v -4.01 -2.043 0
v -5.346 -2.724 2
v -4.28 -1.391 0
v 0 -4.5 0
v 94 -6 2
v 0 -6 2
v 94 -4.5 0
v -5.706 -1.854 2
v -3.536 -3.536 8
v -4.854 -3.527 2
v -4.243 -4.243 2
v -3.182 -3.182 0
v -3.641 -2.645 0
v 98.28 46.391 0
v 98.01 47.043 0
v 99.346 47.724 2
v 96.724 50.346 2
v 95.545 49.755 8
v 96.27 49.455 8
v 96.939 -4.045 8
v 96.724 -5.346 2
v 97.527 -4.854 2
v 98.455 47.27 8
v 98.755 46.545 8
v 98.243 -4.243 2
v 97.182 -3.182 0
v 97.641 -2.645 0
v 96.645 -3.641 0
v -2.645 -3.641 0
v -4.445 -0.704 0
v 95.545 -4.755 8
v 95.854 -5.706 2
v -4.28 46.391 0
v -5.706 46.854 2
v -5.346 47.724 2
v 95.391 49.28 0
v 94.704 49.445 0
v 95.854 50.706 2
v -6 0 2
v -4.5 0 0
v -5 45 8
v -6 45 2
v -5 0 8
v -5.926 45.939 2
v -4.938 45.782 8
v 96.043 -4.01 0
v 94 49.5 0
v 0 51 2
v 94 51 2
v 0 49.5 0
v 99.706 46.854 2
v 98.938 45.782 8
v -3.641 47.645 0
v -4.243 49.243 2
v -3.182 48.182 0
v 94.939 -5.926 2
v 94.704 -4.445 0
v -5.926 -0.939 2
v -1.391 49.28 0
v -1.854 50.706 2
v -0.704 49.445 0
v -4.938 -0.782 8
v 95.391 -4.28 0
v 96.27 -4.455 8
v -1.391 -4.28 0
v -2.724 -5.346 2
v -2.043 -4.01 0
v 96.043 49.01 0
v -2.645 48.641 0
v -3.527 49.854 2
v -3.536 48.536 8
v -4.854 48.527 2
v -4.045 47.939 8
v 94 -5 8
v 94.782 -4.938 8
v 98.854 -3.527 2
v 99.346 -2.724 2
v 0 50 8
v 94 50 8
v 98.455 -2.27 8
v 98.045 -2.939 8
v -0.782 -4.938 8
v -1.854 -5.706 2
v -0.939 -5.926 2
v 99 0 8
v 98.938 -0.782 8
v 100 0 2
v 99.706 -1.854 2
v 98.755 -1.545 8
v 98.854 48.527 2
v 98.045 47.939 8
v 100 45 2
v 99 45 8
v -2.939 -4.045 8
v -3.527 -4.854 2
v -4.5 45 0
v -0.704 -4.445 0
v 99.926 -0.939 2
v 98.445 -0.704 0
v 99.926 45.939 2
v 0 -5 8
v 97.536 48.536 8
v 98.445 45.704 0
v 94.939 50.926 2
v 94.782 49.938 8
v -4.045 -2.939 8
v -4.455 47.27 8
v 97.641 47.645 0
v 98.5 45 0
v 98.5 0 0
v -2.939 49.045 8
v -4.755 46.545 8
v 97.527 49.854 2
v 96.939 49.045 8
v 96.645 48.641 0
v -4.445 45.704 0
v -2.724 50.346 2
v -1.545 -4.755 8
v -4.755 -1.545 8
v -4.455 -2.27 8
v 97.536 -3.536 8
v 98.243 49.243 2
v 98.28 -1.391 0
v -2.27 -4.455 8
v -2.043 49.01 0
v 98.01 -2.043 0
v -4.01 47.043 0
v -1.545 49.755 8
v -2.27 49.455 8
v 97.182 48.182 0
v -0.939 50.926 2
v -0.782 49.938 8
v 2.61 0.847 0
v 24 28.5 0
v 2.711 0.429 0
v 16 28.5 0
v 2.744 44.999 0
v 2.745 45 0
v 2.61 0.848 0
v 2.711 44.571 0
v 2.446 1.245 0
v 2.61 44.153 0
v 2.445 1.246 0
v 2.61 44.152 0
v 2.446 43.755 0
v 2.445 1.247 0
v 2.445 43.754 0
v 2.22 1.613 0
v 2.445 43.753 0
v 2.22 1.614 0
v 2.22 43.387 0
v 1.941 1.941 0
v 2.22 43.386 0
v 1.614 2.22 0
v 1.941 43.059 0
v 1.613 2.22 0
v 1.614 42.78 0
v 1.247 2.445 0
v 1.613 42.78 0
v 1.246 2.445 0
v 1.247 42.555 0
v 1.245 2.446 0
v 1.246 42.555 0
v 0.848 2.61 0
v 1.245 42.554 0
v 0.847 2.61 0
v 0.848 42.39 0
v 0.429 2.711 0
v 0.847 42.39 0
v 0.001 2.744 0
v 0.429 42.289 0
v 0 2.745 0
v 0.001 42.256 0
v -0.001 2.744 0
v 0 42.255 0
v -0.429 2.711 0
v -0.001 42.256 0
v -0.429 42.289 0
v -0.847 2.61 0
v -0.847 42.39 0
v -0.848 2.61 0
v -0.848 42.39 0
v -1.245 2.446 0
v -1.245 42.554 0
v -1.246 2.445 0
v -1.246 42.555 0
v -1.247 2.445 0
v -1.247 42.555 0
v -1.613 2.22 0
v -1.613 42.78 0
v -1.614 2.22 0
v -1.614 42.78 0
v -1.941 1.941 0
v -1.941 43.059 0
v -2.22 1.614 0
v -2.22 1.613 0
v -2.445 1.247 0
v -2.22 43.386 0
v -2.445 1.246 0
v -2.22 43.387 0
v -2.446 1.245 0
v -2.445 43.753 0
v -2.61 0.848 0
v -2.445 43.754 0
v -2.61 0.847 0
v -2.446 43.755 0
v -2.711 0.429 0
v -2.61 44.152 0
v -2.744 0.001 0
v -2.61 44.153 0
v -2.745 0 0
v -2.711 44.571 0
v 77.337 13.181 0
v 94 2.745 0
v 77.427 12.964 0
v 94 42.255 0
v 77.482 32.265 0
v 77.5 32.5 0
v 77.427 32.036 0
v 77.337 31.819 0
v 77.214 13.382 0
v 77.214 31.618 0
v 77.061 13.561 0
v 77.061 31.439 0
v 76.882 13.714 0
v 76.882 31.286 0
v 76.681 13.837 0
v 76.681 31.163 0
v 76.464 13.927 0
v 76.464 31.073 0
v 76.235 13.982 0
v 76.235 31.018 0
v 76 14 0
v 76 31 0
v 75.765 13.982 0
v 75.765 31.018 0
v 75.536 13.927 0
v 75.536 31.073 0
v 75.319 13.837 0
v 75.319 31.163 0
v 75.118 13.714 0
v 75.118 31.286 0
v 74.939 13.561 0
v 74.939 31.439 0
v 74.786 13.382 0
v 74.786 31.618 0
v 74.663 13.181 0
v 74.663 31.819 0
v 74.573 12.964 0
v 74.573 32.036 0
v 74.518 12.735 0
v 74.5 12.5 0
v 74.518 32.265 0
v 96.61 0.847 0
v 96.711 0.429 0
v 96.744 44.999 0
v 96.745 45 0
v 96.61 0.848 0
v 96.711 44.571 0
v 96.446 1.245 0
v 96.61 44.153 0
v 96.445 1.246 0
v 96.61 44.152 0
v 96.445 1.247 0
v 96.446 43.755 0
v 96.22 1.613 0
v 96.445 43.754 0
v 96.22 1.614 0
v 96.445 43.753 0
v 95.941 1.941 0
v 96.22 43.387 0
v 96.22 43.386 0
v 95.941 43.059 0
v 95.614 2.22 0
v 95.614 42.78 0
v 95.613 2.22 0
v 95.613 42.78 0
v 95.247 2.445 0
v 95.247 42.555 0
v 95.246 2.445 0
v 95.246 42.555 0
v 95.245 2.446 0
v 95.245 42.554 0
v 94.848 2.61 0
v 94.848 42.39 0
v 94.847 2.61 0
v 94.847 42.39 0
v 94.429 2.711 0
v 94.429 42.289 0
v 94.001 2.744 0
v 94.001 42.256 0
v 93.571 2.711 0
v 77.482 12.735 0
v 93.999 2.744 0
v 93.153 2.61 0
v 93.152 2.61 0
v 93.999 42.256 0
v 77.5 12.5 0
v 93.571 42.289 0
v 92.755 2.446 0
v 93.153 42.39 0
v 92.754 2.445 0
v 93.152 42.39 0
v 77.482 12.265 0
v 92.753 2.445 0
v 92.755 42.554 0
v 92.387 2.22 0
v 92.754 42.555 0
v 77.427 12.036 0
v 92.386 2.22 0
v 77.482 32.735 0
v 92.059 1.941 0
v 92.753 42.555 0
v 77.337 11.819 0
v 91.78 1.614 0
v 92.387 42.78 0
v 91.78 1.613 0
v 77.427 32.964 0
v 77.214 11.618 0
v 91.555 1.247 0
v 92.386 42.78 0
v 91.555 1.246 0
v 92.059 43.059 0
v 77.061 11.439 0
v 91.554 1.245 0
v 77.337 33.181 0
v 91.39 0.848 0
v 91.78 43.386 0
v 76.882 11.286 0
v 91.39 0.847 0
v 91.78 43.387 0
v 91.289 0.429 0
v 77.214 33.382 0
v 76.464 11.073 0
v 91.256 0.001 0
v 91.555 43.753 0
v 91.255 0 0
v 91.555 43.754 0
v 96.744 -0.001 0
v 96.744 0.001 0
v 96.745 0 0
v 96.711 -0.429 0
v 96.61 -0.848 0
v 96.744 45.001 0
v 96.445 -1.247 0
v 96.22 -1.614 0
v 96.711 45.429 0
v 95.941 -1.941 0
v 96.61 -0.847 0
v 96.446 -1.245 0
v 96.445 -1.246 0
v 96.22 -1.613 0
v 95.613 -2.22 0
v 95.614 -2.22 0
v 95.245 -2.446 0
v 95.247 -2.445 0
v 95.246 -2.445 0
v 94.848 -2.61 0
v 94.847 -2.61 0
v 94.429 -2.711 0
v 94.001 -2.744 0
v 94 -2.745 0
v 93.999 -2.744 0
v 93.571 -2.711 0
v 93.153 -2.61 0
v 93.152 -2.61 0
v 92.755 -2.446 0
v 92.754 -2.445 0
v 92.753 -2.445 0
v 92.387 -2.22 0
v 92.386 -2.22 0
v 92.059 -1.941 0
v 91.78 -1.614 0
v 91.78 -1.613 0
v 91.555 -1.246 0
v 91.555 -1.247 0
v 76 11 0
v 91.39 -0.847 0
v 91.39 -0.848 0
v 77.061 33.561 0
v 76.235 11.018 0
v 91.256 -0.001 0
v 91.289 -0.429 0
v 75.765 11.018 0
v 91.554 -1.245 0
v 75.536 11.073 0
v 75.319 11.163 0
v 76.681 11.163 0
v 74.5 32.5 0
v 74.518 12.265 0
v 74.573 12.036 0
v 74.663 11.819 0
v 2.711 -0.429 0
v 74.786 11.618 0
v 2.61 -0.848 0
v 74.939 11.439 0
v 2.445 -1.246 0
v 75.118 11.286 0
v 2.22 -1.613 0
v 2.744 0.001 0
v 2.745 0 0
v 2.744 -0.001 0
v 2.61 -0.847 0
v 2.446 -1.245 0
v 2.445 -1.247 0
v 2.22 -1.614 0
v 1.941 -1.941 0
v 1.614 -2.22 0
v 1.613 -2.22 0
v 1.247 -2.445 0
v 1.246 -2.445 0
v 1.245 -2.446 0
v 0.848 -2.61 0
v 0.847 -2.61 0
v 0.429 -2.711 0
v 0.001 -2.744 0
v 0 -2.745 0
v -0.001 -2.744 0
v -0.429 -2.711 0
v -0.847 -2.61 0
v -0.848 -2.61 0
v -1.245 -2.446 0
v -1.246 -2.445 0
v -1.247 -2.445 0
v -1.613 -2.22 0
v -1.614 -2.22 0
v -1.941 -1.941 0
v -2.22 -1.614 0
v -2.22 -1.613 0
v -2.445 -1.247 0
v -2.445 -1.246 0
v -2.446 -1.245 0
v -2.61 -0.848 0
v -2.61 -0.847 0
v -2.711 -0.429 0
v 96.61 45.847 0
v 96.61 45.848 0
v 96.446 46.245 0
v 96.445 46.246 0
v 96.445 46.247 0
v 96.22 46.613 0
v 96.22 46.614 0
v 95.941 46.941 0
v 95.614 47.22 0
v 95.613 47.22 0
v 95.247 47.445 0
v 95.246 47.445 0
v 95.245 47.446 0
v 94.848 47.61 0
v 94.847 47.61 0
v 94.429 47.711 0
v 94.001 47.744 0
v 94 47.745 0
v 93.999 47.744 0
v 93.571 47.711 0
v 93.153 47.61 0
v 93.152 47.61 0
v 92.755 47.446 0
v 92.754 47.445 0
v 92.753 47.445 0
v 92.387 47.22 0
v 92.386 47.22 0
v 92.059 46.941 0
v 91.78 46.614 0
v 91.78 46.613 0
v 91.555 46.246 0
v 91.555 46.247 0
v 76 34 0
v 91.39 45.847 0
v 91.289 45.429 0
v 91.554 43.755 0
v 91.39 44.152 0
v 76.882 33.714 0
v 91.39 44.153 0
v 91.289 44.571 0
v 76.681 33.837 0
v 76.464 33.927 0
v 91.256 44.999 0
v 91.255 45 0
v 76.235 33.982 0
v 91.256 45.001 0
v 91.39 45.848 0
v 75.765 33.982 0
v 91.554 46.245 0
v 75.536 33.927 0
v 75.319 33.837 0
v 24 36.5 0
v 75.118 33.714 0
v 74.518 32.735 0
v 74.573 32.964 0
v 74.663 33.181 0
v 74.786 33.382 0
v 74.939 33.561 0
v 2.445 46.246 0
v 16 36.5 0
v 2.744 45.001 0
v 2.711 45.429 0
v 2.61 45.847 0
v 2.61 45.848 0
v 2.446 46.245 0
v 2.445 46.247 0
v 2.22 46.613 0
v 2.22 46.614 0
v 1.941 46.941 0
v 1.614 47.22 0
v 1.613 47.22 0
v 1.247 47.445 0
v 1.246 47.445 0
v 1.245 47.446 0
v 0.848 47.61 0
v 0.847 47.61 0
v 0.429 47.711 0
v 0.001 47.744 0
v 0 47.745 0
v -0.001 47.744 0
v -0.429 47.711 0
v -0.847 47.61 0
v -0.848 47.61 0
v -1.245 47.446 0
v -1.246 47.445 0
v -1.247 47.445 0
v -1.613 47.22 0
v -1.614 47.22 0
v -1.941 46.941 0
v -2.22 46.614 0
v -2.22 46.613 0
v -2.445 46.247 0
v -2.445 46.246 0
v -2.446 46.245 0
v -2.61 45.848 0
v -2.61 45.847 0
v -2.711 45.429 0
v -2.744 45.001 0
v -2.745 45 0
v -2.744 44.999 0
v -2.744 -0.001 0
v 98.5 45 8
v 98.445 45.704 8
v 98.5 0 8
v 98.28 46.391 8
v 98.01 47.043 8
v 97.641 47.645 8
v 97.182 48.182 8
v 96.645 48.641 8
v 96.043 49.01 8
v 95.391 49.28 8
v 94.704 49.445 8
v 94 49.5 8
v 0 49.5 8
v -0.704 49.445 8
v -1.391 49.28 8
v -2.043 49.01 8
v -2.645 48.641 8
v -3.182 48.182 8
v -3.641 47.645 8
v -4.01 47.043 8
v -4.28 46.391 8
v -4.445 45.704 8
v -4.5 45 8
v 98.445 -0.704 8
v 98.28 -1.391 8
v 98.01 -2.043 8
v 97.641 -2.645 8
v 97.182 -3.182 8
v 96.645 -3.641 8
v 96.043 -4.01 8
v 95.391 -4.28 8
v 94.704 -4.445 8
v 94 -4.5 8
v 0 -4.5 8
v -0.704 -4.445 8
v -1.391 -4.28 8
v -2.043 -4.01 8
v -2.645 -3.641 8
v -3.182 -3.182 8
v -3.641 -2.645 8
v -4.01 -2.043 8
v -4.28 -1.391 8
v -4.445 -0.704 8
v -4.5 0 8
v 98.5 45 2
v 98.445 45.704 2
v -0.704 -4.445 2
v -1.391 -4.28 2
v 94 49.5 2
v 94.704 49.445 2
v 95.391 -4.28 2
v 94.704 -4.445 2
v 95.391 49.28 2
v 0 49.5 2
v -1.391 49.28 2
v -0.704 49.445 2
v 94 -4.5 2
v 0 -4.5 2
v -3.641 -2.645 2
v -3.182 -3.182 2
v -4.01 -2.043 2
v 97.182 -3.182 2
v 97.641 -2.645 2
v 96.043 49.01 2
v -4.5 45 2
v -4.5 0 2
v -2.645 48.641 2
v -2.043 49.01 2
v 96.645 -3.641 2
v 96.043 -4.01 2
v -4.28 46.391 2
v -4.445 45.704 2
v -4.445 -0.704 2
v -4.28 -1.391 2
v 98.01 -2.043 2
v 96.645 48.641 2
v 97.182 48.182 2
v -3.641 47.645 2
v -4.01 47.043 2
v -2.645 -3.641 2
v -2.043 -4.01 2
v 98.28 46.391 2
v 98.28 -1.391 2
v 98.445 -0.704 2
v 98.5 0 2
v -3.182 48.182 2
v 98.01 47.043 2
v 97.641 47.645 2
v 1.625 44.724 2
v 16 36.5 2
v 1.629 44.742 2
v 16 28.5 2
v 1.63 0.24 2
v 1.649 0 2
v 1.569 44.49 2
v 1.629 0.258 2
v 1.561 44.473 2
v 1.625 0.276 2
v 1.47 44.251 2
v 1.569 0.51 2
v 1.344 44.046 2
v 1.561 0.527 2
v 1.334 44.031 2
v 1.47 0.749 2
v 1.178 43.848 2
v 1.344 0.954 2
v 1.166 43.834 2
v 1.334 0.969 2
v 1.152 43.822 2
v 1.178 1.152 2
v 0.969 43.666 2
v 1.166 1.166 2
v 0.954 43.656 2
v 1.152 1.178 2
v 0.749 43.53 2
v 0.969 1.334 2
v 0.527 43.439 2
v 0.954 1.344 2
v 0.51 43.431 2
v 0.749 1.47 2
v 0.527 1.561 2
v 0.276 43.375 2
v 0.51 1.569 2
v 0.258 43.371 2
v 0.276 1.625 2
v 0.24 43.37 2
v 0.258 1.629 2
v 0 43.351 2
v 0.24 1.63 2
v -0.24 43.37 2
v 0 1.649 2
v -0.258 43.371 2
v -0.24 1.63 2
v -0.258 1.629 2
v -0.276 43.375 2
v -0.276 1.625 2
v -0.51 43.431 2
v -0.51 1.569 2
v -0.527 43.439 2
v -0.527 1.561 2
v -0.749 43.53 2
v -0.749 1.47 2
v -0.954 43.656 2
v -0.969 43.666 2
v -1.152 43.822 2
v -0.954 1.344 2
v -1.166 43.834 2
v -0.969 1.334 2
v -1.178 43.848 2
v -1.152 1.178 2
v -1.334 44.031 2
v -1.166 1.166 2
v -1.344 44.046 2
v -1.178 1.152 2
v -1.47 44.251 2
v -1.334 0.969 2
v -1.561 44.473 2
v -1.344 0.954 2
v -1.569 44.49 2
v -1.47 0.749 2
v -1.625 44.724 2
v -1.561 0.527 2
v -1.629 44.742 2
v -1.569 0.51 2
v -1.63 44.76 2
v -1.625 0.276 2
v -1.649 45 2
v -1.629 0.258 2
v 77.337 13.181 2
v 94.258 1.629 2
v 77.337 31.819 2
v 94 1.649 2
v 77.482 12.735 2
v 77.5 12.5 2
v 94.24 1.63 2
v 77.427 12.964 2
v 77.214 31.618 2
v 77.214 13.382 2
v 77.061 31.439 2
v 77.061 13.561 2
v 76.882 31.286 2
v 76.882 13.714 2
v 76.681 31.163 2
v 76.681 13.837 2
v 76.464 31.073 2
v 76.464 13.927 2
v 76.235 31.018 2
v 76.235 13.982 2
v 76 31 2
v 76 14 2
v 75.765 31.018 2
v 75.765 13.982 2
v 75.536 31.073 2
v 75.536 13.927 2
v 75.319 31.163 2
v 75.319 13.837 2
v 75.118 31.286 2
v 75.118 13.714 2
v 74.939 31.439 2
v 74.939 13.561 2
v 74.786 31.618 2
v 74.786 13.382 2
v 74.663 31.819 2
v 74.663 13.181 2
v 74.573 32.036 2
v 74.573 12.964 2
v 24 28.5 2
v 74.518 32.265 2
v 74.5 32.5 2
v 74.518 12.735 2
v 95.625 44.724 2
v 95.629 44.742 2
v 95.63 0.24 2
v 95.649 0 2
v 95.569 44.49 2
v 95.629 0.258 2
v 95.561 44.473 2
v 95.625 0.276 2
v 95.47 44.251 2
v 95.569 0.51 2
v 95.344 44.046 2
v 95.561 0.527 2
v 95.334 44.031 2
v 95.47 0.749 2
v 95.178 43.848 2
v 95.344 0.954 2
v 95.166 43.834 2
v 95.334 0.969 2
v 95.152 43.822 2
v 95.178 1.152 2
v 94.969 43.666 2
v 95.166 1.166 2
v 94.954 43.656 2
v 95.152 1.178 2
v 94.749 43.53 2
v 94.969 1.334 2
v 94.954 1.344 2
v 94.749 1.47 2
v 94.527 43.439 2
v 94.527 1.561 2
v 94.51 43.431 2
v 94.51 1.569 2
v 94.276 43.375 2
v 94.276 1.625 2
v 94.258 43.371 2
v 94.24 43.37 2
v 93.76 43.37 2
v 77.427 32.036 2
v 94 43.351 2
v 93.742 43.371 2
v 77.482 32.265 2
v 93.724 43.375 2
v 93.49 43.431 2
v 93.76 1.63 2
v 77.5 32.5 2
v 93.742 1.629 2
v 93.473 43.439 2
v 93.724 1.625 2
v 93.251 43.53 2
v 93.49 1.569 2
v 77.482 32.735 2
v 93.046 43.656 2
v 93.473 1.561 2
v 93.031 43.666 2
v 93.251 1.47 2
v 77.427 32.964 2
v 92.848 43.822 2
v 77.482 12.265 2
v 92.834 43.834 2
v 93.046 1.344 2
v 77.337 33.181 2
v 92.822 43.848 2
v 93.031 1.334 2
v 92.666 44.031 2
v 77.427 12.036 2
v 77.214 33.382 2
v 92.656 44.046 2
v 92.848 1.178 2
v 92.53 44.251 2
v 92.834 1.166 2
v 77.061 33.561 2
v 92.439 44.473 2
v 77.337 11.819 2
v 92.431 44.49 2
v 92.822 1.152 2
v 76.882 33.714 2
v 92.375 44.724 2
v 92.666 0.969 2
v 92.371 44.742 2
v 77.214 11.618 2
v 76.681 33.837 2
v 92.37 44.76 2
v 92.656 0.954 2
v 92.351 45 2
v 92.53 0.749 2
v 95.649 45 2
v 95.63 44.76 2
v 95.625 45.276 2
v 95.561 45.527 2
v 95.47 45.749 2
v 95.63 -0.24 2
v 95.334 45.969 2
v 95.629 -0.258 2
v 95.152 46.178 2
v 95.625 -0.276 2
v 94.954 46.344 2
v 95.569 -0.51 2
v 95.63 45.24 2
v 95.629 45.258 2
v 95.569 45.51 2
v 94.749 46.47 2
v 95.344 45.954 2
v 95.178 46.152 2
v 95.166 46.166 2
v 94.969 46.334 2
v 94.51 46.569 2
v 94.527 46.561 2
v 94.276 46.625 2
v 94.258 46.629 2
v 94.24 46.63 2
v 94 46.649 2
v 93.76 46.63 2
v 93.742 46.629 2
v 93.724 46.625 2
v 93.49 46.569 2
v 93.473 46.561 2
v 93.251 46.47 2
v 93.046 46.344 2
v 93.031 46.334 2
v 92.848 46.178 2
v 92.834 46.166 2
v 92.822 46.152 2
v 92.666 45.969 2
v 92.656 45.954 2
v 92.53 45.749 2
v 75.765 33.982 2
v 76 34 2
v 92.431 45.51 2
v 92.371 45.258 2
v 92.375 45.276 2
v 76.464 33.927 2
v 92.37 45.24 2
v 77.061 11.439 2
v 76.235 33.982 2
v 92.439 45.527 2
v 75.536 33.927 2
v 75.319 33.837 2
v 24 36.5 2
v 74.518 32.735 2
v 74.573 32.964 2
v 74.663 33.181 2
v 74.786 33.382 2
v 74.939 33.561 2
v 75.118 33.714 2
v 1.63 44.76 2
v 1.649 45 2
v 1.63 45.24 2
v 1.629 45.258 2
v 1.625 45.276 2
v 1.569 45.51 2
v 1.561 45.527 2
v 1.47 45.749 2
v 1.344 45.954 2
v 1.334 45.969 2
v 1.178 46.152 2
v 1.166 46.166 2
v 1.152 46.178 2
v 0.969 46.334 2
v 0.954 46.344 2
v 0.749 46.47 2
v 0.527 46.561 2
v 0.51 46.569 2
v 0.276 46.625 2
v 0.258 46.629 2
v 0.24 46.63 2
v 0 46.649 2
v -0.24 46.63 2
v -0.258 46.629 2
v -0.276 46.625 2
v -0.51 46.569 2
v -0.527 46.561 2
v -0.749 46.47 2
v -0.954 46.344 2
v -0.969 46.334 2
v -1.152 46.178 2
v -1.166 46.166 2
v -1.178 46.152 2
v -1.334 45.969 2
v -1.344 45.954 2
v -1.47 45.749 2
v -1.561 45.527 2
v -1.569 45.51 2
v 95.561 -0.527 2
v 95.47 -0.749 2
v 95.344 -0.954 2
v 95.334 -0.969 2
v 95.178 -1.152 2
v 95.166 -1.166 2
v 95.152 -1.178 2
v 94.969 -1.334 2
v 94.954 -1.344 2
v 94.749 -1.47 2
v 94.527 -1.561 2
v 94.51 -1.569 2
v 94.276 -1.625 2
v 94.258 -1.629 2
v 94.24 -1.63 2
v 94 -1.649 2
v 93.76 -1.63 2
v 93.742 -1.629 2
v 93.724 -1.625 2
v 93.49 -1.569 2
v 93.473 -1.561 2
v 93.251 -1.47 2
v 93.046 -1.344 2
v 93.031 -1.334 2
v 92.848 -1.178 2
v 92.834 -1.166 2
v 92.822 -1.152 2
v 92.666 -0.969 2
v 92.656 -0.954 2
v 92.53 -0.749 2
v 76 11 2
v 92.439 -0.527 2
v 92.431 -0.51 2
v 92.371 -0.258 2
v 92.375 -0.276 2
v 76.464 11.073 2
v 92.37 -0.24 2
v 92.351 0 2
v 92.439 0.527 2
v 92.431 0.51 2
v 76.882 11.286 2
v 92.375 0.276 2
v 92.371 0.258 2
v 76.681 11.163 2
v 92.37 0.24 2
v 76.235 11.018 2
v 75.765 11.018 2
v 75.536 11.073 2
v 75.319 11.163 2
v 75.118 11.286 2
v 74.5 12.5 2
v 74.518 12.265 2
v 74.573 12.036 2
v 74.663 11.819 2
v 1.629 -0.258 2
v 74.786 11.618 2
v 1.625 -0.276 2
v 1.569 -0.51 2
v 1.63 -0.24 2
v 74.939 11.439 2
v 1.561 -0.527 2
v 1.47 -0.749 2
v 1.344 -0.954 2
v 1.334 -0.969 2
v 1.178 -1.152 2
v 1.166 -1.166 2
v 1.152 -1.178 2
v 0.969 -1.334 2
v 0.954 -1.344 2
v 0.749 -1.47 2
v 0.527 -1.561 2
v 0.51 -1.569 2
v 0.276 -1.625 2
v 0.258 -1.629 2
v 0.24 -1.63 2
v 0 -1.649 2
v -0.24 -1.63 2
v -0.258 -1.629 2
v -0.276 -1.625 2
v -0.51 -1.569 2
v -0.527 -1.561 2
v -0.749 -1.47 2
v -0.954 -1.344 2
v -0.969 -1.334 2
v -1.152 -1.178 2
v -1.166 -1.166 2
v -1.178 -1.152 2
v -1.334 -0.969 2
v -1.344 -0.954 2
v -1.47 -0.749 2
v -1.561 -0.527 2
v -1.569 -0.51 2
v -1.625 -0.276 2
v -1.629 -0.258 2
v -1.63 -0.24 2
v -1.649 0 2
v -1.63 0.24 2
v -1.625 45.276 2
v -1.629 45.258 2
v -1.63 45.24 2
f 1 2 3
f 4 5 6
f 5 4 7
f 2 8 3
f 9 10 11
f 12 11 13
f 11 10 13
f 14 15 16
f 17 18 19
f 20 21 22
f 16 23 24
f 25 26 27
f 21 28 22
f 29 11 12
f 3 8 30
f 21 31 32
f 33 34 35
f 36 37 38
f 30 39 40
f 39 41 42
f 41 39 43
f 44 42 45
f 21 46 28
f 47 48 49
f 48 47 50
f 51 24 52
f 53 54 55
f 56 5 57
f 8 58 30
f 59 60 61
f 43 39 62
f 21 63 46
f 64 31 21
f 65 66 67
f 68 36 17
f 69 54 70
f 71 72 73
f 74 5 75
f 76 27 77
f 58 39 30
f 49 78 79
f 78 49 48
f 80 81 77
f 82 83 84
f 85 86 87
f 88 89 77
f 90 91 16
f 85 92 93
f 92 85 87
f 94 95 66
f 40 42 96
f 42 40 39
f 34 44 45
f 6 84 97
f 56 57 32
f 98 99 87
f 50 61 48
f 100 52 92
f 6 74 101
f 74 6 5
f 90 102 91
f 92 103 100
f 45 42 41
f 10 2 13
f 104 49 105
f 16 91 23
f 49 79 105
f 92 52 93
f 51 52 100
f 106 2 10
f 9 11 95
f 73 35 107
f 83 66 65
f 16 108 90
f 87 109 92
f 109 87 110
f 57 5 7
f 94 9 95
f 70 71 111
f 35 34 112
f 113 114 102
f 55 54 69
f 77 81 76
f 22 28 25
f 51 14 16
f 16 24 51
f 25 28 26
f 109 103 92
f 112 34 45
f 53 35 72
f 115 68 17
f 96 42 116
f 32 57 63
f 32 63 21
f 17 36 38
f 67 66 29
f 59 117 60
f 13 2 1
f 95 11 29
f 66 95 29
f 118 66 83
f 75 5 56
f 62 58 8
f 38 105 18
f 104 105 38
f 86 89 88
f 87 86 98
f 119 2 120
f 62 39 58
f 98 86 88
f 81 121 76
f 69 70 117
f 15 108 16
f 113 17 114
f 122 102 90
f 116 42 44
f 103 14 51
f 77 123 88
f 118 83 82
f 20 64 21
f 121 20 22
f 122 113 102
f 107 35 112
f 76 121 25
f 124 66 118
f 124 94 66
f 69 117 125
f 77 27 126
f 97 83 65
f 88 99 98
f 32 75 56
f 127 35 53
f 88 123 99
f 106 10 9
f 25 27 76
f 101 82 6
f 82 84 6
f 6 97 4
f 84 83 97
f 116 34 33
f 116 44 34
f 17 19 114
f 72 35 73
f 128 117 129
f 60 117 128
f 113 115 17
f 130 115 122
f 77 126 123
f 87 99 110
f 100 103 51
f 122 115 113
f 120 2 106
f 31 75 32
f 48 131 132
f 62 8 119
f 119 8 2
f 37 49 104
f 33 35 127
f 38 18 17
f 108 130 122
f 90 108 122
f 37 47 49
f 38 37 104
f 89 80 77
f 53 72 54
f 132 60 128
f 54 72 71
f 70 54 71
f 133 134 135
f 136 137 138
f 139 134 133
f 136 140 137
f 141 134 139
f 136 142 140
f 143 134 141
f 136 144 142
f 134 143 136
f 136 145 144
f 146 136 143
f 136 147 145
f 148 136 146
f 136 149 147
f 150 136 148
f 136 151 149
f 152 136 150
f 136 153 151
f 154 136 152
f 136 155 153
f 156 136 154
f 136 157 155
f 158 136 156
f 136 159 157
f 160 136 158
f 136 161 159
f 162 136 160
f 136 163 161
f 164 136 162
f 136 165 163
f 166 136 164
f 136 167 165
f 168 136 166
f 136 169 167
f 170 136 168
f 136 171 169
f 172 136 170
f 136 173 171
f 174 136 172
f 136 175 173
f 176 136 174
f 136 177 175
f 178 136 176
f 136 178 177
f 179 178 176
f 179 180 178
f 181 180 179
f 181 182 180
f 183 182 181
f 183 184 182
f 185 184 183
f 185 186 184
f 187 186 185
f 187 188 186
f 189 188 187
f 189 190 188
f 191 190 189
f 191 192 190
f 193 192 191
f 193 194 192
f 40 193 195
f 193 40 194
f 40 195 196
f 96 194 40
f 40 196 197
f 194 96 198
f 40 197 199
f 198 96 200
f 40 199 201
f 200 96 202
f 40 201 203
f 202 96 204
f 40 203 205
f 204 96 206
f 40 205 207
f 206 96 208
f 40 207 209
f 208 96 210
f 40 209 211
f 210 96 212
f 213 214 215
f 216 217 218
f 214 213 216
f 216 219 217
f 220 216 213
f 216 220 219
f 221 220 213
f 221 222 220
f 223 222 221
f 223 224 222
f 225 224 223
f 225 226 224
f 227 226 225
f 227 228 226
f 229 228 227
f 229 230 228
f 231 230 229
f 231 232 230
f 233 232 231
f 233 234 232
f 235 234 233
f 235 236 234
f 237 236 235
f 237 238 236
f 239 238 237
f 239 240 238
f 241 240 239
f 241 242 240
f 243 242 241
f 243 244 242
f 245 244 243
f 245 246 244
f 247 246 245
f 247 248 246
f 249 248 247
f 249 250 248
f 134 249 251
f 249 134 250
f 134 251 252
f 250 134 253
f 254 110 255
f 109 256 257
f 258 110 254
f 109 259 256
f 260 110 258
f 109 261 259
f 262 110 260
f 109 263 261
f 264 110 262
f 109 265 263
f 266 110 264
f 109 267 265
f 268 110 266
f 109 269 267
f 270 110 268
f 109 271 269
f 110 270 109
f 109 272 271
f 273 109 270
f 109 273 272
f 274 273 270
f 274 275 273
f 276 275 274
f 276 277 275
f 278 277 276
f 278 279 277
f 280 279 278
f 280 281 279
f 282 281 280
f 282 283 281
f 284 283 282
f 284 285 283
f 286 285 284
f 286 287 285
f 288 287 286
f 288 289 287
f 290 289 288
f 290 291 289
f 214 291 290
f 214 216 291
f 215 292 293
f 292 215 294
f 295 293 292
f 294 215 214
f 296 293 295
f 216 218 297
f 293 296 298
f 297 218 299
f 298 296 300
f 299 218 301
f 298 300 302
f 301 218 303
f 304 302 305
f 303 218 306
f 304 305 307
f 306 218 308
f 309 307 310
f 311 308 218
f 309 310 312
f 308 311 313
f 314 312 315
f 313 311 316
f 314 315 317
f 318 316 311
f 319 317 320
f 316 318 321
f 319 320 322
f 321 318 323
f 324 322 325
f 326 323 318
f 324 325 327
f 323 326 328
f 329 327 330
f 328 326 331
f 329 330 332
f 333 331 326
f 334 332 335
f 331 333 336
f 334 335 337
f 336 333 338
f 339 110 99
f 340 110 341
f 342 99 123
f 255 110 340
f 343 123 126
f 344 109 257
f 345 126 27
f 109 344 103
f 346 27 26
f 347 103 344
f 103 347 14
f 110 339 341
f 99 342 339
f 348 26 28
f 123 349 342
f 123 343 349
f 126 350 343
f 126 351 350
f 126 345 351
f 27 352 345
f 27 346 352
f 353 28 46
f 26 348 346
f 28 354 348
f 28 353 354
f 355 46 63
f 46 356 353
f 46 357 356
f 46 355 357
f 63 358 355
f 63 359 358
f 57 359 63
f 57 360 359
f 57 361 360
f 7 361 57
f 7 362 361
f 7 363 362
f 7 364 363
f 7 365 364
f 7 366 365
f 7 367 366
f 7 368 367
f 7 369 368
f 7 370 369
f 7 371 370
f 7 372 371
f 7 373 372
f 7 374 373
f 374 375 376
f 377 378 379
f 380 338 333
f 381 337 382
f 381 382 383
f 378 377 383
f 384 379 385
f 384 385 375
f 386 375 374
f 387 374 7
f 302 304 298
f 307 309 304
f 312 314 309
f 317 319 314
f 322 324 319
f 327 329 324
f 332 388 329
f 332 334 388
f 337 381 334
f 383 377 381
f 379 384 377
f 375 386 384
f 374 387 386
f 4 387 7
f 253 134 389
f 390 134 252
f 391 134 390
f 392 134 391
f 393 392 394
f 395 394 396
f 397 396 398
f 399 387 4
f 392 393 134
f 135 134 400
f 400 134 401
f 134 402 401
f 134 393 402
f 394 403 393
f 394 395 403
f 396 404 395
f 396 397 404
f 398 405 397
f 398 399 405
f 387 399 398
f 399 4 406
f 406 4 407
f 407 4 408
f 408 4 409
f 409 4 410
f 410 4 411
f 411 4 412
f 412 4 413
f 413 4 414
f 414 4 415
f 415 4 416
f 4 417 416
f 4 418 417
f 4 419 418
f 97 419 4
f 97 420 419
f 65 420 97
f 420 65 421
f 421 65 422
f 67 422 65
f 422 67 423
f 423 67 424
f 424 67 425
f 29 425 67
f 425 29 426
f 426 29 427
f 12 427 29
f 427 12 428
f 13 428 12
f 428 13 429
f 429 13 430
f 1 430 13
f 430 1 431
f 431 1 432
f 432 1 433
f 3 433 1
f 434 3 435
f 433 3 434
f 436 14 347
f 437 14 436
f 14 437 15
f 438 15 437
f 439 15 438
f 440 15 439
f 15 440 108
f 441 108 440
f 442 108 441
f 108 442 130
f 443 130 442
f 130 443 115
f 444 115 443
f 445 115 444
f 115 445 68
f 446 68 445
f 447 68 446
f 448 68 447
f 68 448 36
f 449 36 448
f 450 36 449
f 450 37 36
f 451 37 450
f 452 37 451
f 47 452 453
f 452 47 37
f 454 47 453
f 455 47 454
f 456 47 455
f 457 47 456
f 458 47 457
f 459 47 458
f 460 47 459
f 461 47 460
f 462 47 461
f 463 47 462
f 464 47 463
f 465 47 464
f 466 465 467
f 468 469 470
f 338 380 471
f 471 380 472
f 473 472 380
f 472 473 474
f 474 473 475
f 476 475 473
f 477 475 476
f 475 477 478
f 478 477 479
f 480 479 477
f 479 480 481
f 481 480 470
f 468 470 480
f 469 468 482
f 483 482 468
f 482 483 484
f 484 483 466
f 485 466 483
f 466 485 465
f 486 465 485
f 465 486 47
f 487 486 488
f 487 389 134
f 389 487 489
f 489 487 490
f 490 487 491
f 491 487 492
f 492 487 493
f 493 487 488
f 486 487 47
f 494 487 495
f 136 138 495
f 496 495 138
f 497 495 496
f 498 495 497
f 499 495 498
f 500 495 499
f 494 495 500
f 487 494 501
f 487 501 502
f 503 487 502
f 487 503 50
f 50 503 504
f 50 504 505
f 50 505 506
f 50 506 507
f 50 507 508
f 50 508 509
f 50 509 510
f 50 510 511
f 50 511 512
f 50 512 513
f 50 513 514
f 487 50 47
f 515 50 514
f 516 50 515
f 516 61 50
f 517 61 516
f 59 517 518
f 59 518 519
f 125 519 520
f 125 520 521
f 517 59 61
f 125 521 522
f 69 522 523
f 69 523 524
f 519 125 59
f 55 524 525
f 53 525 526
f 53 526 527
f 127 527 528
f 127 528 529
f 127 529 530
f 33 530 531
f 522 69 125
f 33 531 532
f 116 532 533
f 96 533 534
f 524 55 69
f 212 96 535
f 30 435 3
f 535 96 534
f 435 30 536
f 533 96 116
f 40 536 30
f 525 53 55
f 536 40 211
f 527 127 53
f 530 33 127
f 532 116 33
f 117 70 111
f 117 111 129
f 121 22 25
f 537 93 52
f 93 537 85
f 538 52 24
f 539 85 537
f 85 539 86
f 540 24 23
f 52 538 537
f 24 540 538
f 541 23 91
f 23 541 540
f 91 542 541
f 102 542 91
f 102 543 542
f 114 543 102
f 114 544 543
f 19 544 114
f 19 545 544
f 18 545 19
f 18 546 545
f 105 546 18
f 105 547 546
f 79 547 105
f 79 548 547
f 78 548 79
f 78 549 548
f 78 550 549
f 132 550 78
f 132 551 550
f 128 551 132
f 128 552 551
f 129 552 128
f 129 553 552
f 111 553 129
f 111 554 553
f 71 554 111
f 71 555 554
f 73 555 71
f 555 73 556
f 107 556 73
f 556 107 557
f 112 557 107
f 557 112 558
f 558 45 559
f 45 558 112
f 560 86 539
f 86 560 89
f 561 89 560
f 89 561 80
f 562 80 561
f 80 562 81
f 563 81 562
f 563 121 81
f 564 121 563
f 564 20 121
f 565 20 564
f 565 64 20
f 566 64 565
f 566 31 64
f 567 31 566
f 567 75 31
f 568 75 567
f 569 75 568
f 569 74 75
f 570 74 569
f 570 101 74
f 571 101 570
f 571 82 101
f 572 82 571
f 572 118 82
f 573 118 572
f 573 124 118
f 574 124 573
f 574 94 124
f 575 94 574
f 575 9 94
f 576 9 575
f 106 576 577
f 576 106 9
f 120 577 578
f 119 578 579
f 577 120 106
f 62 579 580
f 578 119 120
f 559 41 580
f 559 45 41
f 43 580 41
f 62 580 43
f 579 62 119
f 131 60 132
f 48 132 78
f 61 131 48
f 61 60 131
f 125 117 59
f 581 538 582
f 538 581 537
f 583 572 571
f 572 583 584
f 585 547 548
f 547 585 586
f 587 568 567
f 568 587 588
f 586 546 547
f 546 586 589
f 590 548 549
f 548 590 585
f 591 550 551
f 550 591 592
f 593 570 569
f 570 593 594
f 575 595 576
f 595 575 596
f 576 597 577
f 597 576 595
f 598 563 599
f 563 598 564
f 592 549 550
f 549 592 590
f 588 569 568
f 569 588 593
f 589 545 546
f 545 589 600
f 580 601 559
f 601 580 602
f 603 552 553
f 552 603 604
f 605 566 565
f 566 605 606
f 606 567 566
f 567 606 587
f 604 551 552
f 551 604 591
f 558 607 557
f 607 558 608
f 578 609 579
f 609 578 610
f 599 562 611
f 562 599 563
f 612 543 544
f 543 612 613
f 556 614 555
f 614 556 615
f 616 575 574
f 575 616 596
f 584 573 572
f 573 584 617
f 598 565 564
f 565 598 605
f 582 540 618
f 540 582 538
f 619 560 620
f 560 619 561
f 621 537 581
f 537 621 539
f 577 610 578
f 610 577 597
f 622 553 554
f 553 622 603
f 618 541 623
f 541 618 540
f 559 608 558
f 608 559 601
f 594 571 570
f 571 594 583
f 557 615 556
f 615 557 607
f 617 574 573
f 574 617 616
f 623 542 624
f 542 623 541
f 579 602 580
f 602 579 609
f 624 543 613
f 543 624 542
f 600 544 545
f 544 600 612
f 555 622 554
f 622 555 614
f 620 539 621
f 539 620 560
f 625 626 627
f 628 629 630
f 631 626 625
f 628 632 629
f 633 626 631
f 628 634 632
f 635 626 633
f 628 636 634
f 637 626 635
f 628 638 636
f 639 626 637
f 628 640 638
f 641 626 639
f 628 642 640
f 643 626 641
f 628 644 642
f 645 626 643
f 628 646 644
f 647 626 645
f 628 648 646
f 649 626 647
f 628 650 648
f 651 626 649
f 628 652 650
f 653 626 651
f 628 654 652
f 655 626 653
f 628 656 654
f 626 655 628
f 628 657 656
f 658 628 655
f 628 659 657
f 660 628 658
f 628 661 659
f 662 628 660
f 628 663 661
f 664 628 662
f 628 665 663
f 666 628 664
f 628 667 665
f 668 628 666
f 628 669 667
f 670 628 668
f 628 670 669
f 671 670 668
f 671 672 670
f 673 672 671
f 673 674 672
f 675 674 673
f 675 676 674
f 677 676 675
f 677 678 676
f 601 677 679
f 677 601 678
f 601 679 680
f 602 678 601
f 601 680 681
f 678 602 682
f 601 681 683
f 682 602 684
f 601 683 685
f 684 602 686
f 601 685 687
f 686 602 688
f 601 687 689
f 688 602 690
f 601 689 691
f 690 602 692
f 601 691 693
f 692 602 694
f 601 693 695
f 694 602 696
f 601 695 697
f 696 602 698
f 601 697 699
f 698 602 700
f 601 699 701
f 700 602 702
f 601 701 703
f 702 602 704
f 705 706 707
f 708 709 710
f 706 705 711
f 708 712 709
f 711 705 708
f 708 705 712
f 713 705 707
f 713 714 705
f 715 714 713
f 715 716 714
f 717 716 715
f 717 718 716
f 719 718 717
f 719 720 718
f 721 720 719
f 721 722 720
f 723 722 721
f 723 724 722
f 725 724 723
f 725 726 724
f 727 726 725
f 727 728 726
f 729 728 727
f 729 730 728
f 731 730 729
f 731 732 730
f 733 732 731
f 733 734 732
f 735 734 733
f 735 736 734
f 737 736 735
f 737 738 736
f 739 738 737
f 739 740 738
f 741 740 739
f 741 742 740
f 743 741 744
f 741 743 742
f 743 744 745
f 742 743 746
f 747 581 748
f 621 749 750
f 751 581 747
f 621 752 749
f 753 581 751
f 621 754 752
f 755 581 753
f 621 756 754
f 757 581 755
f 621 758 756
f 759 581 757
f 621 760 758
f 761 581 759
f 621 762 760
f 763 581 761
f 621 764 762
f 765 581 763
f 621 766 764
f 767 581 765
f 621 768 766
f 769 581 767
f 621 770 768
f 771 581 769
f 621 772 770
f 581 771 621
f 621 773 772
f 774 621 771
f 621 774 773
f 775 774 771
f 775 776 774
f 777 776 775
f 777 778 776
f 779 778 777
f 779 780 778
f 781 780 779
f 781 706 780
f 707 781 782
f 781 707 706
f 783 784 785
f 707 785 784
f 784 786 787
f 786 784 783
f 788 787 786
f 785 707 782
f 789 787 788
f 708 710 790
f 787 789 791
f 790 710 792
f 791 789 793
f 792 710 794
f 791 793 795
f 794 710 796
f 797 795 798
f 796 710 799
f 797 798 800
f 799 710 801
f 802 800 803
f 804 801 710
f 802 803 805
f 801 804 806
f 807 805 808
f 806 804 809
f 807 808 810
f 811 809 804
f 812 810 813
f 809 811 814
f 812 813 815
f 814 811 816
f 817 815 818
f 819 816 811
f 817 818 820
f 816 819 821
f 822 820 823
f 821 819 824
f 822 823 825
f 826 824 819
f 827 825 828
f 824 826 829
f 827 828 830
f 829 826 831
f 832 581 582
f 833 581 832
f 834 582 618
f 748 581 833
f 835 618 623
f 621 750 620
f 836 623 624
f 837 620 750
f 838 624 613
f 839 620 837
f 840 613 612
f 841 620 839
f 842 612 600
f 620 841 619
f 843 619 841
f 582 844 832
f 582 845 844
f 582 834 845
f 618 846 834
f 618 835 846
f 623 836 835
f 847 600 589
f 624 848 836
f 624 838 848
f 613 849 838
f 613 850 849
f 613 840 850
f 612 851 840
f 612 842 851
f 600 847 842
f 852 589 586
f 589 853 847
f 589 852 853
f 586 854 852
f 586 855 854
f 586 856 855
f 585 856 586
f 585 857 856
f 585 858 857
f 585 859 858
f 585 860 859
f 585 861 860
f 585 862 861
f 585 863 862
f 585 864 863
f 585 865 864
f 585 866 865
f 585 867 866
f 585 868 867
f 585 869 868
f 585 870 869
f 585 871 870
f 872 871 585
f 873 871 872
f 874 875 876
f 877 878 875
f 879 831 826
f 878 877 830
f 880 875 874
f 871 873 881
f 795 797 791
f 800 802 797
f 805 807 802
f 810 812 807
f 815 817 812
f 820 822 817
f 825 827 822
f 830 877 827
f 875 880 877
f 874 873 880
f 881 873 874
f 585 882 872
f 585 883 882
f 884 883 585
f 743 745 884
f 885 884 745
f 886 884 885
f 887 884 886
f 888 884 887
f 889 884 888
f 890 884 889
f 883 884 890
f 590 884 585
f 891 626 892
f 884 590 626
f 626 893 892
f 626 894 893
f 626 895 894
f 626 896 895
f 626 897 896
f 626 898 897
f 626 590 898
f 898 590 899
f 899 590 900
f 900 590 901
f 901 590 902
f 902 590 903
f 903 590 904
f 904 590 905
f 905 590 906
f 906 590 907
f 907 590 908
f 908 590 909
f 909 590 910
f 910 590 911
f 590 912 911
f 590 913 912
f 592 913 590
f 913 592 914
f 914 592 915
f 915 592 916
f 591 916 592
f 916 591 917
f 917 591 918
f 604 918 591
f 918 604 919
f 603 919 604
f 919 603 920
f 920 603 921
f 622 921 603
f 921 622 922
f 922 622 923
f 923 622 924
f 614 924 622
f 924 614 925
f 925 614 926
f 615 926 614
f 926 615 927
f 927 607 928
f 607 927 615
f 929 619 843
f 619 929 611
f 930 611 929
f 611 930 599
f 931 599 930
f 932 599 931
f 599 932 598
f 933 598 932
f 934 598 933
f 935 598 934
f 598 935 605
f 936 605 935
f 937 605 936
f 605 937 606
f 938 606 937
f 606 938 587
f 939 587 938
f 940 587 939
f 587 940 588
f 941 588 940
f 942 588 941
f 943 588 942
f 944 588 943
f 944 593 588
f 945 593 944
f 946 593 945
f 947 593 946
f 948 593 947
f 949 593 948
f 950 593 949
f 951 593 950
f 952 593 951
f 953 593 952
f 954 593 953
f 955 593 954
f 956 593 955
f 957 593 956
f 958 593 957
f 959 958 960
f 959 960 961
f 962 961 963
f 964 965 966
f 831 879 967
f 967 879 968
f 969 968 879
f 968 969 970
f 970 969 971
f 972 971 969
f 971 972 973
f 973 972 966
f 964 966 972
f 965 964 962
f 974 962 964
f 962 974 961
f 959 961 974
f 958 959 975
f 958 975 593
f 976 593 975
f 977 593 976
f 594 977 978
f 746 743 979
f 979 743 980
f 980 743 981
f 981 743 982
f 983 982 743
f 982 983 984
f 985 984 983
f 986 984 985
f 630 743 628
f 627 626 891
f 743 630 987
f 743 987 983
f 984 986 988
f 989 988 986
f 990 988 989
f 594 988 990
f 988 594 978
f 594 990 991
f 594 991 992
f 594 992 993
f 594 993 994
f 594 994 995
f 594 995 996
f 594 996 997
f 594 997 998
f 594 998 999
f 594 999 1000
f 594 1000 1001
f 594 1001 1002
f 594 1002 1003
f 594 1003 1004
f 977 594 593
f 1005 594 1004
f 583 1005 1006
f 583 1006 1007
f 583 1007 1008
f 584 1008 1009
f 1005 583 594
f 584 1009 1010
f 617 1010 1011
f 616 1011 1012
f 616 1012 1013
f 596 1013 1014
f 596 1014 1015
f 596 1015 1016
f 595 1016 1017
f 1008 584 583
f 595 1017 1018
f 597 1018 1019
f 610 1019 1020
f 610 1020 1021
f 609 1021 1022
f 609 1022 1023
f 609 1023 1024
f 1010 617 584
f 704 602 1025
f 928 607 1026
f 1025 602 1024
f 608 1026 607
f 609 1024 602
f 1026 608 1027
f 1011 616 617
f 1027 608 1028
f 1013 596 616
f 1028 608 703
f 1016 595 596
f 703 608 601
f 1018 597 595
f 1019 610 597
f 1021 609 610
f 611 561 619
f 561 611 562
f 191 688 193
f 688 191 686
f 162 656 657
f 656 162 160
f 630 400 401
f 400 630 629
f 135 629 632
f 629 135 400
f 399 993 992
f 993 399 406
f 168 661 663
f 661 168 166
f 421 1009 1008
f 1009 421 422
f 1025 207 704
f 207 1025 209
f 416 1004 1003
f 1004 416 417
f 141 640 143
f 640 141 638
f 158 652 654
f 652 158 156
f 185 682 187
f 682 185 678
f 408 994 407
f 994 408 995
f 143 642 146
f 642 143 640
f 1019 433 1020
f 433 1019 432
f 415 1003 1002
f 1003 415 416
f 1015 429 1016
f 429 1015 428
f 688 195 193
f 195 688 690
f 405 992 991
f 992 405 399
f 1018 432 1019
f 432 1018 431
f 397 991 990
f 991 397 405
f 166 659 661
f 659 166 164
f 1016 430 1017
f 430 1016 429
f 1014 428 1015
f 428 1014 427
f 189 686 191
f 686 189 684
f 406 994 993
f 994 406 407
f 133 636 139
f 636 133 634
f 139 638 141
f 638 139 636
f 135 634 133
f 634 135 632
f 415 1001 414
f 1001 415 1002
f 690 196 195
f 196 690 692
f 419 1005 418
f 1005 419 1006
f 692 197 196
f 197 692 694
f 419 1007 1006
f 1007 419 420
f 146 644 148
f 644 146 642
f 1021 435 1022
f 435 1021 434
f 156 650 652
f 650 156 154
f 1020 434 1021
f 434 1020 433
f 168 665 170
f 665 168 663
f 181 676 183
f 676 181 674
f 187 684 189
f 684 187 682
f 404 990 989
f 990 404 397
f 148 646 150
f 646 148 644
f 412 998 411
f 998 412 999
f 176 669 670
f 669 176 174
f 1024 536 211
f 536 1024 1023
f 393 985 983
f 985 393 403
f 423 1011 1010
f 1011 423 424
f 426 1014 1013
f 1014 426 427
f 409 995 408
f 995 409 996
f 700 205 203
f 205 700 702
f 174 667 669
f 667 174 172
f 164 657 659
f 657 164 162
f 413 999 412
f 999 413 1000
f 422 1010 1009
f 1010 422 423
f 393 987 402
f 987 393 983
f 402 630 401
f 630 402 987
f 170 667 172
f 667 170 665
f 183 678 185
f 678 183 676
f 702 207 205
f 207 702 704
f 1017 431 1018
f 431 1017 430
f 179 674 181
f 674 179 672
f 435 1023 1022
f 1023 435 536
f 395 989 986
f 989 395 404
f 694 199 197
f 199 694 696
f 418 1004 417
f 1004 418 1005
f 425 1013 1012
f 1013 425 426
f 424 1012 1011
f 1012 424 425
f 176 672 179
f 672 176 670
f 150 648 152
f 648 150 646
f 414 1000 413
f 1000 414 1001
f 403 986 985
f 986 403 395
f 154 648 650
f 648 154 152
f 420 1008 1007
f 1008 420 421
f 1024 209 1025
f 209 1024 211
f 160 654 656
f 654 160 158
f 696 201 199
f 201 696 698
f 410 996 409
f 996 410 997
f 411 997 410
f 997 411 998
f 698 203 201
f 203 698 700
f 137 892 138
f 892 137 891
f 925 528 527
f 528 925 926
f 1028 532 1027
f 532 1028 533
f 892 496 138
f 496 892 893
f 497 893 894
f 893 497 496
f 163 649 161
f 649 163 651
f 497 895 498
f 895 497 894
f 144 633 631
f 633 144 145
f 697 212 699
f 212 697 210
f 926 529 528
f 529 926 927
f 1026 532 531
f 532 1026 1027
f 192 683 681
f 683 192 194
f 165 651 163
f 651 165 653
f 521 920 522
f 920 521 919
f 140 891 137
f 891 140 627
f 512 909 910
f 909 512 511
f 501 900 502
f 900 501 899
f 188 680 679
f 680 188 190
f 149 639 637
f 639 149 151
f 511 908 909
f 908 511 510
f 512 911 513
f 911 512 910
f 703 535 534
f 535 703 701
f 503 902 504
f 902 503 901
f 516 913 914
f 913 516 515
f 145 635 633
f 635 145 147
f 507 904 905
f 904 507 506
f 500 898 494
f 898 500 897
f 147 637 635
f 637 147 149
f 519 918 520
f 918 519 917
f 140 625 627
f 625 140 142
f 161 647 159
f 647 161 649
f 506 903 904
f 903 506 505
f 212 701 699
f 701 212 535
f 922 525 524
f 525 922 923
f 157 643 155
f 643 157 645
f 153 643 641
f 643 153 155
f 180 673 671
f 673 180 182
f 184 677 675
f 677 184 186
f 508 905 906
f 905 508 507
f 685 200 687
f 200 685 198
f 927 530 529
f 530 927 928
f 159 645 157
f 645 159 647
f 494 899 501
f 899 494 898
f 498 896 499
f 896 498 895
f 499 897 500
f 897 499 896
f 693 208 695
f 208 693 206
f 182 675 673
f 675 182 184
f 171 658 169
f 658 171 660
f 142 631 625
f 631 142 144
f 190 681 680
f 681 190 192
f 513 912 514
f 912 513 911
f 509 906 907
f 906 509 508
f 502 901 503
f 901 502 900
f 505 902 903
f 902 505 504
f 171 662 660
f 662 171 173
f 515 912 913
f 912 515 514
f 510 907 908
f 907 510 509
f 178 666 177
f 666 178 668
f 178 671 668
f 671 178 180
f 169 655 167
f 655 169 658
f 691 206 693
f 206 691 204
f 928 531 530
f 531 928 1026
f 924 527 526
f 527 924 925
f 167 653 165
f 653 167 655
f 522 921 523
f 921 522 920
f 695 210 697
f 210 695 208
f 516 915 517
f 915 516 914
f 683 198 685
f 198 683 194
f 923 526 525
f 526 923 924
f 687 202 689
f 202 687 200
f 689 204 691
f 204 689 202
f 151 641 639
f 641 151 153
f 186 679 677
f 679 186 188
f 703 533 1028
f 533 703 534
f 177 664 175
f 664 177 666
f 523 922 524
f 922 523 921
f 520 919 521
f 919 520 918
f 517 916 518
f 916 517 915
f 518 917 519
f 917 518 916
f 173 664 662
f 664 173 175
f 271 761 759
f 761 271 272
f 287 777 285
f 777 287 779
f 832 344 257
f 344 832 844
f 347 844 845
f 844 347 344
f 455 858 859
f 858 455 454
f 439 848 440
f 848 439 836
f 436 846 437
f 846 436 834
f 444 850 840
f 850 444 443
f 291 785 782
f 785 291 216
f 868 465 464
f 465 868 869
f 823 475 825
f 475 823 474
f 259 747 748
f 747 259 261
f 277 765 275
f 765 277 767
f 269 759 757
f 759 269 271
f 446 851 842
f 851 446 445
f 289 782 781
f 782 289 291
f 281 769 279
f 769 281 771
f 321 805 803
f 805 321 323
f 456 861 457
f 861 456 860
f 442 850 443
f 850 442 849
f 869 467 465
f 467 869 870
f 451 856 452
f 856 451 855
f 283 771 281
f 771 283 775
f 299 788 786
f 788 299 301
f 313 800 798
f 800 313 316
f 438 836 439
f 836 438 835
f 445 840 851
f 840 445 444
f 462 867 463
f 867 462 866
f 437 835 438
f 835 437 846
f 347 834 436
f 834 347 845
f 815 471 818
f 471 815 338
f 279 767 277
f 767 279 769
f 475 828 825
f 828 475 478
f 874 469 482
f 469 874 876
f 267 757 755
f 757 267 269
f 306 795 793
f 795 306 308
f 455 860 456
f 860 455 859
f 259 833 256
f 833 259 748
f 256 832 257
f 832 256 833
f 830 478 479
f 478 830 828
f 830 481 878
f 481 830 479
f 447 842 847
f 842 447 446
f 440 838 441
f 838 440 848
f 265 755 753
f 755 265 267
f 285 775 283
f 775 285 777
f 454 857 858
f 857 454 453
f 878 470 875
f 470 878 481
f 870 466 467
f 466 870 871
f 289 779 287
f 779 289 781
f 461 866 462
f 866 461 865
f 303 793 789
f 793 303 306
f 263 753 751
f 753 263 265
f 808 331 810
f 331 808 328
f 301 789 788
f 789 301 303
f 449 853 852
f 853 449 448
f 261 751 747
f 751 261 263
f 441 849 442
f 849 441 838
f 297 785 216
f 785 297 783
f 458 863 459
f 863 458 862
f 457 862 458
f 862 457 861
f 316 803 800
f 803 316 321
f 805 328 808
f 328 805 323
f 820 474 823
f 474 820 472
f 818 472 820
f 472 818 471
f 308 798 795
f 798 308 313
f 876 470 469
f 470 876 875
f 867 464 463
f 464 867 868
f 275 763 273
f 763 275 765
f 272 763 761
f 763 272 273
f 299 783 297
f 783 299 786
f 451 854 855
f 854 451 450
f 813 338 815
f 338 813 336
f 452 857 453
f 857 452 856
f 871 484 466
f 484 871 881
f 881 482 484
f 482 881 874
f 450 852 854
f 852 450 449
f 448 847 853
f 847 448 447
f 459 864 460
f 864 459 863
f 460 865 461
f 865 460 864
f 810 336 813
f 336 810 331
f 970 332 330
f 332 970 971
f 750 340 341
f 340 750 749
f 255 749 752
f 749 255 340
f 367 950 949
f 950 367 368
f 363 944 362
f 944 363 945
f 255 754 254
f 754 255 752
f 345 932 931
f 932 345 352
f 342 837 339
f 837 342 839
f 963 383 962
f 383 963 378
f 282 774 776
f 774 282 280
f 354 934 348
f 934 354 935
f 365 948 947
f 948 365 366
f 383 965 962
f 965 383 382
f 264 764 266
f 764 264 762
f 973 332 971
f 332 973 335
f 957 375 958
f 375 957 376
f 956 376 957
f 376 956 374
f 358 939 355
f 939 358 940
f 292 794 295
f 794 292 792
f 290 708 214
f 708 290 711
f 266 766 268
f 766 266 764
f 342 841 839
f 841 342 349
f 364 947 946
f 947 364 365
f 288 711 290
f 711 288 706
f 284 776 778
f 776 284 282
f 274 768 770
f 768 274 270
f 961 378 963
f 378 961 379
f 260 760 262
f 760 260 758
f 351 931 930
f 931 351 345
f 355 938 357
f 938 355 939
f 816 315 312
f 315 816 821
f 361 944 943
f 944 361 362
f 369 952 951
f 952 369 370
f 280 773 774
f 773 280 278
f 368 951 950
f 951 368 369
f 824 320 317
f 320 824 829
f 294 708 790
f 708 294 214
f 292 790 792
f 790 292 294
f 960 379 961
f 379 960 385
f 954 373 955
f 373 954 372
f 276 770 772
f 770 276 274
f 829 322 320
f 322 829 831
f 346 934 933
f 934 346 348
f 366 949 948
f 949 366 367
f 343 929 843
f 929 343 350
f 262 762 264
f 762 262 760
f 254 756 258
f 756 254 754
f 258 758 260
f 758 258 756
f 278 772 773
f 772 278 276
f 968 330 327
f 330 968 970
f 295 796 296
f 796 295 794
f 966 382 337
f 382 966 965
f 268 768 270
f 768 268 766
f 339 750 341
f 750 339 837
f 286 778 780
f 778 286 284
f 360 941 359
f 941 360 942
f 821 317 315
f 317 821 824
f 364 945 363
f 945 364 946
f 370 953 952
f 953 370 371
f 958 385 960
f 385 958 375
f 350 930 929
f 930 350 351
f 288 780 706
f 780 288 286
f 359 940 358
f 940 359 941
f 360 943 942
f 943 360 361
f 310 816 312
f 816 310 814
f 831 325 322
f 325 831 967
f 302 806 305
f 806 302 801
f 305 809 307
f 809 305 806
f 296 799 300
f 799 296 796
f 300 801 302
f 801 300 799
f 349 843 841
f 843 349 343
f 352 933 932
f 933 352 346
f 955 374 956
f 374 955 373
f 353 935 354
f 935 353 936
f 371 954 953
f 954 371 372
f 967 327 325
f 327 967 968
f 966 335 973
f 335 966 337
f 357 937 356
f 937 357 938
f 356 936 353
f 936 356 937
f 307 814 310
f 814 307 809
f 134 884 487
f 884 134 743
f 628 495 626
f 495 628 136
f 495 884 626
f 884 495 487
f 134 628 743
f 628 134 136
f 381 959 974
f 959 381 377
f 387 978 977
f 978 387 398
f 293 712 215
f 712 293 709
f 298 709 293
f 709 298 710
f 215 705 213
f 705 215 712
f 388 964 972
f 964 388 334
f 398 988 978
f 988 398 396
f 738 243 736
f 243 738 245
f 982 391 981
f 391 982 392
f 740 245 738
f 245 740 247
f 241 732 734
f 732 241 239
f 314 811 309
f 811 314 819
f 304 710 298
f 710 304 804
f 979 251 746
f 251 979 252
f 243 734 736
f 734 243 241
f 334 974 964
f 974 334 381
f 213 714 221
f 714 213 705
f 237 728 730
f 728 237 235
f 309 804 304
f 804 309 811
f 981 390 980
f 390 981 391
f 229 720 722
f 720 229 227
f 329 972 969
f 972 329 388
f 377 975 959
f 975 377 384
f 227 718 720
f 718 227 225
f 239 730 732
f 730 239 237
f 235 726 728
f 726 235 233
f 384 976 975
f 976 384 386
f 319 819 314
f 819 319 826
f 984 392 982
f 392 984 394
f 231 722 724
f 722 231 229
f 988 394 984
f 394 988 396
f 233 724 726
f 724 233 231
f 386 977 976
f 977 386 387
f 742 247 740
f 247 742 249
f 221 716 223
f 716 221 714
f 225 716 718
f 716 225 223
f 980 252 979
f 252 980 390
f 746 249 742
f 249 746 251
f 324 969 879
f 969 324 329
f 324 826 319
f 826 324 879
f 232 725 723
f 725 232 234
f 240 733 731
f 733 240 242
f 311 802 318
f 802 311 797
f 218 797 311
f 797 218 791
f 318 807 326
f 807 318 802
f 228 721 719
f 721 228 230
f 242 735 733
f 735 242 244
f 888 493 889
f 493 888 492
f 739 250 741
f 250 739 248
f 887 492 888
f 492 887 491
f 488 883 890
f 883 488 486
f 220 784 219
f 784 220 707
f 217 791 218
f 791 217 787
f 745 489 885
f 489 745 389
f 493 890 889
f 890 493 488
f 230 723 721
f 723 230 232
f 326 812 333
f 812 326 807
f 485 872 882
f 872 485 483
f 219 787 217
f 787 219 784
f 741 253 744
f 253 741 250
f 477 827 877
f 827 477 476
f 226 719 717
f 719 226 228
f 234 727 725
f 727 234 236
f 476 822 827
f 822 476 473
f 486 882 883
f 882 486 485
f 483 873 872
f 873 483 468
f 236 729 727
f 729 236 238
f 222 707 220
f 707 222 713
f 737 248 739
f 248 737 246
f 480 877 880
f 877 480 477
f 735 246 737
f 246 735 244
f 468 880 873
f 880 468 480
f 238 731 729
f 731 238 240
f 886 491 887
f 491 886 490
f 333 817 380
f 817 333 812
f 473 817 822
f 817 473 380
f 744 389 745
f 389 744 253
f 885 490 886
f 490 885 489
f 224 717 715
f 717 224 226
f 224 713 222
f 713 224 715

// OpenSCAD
$fn=40;

width = 45;
length = 94;

difference(){
    hull(){
        translate([0,0,0]){cylinder(d1=9,d2=12,h=2);translate([0,0,2])cylinder(d1=12,d2=10,h=6);}
        translate([0,width,0]){cylinder(d1=9,d2=12,h=2);translate([0,0,2])cylinder(d1=12,d2=10,h=6);}
        translate([length,width,0]){cylinder(d1=9,d2=12,h=2);translate([0,0,2])cylinder(d1=12,d2=10,h=6);}
        translate([length,0,0]){cylinder(d1=9,d2=12,h=2);translate([0,0,2])cylinder(d1=12,d2=10,h=6);}
    }
    hull(){
        translate([0,0,2])cylinder(d=9,h=7);
        translate([0,width,2])cylinder(d=9,h=7);
        translate([length,width,2])cylinder(d=9,h=7);
        translate([length,0,2])cylinder(d=9,h=7);
            
    }
        translate([0,0,-0.01])cylinder(d1=5.5,d2=3.2,h=2.1);
        translate([0,width,-0.01])cylinder(d1=5.5,d2=3.2,h=2.1);
        translate([length,width,-0.01])cylinder(d1=5.5,d2=3.2,h=2.1);
        translate([length,0,-0.01])cylinder(d1=5.5,d2=3.2,h=2.1);
    
    translate([20-4,28.5,-0.01])cube([8,8,8]);
     translate([20+56,12.5,-0.01])cylinder(d=3,h=10);
    translate([20+56,32.5,-0.01])cylinder(d=3,h=10);
}
